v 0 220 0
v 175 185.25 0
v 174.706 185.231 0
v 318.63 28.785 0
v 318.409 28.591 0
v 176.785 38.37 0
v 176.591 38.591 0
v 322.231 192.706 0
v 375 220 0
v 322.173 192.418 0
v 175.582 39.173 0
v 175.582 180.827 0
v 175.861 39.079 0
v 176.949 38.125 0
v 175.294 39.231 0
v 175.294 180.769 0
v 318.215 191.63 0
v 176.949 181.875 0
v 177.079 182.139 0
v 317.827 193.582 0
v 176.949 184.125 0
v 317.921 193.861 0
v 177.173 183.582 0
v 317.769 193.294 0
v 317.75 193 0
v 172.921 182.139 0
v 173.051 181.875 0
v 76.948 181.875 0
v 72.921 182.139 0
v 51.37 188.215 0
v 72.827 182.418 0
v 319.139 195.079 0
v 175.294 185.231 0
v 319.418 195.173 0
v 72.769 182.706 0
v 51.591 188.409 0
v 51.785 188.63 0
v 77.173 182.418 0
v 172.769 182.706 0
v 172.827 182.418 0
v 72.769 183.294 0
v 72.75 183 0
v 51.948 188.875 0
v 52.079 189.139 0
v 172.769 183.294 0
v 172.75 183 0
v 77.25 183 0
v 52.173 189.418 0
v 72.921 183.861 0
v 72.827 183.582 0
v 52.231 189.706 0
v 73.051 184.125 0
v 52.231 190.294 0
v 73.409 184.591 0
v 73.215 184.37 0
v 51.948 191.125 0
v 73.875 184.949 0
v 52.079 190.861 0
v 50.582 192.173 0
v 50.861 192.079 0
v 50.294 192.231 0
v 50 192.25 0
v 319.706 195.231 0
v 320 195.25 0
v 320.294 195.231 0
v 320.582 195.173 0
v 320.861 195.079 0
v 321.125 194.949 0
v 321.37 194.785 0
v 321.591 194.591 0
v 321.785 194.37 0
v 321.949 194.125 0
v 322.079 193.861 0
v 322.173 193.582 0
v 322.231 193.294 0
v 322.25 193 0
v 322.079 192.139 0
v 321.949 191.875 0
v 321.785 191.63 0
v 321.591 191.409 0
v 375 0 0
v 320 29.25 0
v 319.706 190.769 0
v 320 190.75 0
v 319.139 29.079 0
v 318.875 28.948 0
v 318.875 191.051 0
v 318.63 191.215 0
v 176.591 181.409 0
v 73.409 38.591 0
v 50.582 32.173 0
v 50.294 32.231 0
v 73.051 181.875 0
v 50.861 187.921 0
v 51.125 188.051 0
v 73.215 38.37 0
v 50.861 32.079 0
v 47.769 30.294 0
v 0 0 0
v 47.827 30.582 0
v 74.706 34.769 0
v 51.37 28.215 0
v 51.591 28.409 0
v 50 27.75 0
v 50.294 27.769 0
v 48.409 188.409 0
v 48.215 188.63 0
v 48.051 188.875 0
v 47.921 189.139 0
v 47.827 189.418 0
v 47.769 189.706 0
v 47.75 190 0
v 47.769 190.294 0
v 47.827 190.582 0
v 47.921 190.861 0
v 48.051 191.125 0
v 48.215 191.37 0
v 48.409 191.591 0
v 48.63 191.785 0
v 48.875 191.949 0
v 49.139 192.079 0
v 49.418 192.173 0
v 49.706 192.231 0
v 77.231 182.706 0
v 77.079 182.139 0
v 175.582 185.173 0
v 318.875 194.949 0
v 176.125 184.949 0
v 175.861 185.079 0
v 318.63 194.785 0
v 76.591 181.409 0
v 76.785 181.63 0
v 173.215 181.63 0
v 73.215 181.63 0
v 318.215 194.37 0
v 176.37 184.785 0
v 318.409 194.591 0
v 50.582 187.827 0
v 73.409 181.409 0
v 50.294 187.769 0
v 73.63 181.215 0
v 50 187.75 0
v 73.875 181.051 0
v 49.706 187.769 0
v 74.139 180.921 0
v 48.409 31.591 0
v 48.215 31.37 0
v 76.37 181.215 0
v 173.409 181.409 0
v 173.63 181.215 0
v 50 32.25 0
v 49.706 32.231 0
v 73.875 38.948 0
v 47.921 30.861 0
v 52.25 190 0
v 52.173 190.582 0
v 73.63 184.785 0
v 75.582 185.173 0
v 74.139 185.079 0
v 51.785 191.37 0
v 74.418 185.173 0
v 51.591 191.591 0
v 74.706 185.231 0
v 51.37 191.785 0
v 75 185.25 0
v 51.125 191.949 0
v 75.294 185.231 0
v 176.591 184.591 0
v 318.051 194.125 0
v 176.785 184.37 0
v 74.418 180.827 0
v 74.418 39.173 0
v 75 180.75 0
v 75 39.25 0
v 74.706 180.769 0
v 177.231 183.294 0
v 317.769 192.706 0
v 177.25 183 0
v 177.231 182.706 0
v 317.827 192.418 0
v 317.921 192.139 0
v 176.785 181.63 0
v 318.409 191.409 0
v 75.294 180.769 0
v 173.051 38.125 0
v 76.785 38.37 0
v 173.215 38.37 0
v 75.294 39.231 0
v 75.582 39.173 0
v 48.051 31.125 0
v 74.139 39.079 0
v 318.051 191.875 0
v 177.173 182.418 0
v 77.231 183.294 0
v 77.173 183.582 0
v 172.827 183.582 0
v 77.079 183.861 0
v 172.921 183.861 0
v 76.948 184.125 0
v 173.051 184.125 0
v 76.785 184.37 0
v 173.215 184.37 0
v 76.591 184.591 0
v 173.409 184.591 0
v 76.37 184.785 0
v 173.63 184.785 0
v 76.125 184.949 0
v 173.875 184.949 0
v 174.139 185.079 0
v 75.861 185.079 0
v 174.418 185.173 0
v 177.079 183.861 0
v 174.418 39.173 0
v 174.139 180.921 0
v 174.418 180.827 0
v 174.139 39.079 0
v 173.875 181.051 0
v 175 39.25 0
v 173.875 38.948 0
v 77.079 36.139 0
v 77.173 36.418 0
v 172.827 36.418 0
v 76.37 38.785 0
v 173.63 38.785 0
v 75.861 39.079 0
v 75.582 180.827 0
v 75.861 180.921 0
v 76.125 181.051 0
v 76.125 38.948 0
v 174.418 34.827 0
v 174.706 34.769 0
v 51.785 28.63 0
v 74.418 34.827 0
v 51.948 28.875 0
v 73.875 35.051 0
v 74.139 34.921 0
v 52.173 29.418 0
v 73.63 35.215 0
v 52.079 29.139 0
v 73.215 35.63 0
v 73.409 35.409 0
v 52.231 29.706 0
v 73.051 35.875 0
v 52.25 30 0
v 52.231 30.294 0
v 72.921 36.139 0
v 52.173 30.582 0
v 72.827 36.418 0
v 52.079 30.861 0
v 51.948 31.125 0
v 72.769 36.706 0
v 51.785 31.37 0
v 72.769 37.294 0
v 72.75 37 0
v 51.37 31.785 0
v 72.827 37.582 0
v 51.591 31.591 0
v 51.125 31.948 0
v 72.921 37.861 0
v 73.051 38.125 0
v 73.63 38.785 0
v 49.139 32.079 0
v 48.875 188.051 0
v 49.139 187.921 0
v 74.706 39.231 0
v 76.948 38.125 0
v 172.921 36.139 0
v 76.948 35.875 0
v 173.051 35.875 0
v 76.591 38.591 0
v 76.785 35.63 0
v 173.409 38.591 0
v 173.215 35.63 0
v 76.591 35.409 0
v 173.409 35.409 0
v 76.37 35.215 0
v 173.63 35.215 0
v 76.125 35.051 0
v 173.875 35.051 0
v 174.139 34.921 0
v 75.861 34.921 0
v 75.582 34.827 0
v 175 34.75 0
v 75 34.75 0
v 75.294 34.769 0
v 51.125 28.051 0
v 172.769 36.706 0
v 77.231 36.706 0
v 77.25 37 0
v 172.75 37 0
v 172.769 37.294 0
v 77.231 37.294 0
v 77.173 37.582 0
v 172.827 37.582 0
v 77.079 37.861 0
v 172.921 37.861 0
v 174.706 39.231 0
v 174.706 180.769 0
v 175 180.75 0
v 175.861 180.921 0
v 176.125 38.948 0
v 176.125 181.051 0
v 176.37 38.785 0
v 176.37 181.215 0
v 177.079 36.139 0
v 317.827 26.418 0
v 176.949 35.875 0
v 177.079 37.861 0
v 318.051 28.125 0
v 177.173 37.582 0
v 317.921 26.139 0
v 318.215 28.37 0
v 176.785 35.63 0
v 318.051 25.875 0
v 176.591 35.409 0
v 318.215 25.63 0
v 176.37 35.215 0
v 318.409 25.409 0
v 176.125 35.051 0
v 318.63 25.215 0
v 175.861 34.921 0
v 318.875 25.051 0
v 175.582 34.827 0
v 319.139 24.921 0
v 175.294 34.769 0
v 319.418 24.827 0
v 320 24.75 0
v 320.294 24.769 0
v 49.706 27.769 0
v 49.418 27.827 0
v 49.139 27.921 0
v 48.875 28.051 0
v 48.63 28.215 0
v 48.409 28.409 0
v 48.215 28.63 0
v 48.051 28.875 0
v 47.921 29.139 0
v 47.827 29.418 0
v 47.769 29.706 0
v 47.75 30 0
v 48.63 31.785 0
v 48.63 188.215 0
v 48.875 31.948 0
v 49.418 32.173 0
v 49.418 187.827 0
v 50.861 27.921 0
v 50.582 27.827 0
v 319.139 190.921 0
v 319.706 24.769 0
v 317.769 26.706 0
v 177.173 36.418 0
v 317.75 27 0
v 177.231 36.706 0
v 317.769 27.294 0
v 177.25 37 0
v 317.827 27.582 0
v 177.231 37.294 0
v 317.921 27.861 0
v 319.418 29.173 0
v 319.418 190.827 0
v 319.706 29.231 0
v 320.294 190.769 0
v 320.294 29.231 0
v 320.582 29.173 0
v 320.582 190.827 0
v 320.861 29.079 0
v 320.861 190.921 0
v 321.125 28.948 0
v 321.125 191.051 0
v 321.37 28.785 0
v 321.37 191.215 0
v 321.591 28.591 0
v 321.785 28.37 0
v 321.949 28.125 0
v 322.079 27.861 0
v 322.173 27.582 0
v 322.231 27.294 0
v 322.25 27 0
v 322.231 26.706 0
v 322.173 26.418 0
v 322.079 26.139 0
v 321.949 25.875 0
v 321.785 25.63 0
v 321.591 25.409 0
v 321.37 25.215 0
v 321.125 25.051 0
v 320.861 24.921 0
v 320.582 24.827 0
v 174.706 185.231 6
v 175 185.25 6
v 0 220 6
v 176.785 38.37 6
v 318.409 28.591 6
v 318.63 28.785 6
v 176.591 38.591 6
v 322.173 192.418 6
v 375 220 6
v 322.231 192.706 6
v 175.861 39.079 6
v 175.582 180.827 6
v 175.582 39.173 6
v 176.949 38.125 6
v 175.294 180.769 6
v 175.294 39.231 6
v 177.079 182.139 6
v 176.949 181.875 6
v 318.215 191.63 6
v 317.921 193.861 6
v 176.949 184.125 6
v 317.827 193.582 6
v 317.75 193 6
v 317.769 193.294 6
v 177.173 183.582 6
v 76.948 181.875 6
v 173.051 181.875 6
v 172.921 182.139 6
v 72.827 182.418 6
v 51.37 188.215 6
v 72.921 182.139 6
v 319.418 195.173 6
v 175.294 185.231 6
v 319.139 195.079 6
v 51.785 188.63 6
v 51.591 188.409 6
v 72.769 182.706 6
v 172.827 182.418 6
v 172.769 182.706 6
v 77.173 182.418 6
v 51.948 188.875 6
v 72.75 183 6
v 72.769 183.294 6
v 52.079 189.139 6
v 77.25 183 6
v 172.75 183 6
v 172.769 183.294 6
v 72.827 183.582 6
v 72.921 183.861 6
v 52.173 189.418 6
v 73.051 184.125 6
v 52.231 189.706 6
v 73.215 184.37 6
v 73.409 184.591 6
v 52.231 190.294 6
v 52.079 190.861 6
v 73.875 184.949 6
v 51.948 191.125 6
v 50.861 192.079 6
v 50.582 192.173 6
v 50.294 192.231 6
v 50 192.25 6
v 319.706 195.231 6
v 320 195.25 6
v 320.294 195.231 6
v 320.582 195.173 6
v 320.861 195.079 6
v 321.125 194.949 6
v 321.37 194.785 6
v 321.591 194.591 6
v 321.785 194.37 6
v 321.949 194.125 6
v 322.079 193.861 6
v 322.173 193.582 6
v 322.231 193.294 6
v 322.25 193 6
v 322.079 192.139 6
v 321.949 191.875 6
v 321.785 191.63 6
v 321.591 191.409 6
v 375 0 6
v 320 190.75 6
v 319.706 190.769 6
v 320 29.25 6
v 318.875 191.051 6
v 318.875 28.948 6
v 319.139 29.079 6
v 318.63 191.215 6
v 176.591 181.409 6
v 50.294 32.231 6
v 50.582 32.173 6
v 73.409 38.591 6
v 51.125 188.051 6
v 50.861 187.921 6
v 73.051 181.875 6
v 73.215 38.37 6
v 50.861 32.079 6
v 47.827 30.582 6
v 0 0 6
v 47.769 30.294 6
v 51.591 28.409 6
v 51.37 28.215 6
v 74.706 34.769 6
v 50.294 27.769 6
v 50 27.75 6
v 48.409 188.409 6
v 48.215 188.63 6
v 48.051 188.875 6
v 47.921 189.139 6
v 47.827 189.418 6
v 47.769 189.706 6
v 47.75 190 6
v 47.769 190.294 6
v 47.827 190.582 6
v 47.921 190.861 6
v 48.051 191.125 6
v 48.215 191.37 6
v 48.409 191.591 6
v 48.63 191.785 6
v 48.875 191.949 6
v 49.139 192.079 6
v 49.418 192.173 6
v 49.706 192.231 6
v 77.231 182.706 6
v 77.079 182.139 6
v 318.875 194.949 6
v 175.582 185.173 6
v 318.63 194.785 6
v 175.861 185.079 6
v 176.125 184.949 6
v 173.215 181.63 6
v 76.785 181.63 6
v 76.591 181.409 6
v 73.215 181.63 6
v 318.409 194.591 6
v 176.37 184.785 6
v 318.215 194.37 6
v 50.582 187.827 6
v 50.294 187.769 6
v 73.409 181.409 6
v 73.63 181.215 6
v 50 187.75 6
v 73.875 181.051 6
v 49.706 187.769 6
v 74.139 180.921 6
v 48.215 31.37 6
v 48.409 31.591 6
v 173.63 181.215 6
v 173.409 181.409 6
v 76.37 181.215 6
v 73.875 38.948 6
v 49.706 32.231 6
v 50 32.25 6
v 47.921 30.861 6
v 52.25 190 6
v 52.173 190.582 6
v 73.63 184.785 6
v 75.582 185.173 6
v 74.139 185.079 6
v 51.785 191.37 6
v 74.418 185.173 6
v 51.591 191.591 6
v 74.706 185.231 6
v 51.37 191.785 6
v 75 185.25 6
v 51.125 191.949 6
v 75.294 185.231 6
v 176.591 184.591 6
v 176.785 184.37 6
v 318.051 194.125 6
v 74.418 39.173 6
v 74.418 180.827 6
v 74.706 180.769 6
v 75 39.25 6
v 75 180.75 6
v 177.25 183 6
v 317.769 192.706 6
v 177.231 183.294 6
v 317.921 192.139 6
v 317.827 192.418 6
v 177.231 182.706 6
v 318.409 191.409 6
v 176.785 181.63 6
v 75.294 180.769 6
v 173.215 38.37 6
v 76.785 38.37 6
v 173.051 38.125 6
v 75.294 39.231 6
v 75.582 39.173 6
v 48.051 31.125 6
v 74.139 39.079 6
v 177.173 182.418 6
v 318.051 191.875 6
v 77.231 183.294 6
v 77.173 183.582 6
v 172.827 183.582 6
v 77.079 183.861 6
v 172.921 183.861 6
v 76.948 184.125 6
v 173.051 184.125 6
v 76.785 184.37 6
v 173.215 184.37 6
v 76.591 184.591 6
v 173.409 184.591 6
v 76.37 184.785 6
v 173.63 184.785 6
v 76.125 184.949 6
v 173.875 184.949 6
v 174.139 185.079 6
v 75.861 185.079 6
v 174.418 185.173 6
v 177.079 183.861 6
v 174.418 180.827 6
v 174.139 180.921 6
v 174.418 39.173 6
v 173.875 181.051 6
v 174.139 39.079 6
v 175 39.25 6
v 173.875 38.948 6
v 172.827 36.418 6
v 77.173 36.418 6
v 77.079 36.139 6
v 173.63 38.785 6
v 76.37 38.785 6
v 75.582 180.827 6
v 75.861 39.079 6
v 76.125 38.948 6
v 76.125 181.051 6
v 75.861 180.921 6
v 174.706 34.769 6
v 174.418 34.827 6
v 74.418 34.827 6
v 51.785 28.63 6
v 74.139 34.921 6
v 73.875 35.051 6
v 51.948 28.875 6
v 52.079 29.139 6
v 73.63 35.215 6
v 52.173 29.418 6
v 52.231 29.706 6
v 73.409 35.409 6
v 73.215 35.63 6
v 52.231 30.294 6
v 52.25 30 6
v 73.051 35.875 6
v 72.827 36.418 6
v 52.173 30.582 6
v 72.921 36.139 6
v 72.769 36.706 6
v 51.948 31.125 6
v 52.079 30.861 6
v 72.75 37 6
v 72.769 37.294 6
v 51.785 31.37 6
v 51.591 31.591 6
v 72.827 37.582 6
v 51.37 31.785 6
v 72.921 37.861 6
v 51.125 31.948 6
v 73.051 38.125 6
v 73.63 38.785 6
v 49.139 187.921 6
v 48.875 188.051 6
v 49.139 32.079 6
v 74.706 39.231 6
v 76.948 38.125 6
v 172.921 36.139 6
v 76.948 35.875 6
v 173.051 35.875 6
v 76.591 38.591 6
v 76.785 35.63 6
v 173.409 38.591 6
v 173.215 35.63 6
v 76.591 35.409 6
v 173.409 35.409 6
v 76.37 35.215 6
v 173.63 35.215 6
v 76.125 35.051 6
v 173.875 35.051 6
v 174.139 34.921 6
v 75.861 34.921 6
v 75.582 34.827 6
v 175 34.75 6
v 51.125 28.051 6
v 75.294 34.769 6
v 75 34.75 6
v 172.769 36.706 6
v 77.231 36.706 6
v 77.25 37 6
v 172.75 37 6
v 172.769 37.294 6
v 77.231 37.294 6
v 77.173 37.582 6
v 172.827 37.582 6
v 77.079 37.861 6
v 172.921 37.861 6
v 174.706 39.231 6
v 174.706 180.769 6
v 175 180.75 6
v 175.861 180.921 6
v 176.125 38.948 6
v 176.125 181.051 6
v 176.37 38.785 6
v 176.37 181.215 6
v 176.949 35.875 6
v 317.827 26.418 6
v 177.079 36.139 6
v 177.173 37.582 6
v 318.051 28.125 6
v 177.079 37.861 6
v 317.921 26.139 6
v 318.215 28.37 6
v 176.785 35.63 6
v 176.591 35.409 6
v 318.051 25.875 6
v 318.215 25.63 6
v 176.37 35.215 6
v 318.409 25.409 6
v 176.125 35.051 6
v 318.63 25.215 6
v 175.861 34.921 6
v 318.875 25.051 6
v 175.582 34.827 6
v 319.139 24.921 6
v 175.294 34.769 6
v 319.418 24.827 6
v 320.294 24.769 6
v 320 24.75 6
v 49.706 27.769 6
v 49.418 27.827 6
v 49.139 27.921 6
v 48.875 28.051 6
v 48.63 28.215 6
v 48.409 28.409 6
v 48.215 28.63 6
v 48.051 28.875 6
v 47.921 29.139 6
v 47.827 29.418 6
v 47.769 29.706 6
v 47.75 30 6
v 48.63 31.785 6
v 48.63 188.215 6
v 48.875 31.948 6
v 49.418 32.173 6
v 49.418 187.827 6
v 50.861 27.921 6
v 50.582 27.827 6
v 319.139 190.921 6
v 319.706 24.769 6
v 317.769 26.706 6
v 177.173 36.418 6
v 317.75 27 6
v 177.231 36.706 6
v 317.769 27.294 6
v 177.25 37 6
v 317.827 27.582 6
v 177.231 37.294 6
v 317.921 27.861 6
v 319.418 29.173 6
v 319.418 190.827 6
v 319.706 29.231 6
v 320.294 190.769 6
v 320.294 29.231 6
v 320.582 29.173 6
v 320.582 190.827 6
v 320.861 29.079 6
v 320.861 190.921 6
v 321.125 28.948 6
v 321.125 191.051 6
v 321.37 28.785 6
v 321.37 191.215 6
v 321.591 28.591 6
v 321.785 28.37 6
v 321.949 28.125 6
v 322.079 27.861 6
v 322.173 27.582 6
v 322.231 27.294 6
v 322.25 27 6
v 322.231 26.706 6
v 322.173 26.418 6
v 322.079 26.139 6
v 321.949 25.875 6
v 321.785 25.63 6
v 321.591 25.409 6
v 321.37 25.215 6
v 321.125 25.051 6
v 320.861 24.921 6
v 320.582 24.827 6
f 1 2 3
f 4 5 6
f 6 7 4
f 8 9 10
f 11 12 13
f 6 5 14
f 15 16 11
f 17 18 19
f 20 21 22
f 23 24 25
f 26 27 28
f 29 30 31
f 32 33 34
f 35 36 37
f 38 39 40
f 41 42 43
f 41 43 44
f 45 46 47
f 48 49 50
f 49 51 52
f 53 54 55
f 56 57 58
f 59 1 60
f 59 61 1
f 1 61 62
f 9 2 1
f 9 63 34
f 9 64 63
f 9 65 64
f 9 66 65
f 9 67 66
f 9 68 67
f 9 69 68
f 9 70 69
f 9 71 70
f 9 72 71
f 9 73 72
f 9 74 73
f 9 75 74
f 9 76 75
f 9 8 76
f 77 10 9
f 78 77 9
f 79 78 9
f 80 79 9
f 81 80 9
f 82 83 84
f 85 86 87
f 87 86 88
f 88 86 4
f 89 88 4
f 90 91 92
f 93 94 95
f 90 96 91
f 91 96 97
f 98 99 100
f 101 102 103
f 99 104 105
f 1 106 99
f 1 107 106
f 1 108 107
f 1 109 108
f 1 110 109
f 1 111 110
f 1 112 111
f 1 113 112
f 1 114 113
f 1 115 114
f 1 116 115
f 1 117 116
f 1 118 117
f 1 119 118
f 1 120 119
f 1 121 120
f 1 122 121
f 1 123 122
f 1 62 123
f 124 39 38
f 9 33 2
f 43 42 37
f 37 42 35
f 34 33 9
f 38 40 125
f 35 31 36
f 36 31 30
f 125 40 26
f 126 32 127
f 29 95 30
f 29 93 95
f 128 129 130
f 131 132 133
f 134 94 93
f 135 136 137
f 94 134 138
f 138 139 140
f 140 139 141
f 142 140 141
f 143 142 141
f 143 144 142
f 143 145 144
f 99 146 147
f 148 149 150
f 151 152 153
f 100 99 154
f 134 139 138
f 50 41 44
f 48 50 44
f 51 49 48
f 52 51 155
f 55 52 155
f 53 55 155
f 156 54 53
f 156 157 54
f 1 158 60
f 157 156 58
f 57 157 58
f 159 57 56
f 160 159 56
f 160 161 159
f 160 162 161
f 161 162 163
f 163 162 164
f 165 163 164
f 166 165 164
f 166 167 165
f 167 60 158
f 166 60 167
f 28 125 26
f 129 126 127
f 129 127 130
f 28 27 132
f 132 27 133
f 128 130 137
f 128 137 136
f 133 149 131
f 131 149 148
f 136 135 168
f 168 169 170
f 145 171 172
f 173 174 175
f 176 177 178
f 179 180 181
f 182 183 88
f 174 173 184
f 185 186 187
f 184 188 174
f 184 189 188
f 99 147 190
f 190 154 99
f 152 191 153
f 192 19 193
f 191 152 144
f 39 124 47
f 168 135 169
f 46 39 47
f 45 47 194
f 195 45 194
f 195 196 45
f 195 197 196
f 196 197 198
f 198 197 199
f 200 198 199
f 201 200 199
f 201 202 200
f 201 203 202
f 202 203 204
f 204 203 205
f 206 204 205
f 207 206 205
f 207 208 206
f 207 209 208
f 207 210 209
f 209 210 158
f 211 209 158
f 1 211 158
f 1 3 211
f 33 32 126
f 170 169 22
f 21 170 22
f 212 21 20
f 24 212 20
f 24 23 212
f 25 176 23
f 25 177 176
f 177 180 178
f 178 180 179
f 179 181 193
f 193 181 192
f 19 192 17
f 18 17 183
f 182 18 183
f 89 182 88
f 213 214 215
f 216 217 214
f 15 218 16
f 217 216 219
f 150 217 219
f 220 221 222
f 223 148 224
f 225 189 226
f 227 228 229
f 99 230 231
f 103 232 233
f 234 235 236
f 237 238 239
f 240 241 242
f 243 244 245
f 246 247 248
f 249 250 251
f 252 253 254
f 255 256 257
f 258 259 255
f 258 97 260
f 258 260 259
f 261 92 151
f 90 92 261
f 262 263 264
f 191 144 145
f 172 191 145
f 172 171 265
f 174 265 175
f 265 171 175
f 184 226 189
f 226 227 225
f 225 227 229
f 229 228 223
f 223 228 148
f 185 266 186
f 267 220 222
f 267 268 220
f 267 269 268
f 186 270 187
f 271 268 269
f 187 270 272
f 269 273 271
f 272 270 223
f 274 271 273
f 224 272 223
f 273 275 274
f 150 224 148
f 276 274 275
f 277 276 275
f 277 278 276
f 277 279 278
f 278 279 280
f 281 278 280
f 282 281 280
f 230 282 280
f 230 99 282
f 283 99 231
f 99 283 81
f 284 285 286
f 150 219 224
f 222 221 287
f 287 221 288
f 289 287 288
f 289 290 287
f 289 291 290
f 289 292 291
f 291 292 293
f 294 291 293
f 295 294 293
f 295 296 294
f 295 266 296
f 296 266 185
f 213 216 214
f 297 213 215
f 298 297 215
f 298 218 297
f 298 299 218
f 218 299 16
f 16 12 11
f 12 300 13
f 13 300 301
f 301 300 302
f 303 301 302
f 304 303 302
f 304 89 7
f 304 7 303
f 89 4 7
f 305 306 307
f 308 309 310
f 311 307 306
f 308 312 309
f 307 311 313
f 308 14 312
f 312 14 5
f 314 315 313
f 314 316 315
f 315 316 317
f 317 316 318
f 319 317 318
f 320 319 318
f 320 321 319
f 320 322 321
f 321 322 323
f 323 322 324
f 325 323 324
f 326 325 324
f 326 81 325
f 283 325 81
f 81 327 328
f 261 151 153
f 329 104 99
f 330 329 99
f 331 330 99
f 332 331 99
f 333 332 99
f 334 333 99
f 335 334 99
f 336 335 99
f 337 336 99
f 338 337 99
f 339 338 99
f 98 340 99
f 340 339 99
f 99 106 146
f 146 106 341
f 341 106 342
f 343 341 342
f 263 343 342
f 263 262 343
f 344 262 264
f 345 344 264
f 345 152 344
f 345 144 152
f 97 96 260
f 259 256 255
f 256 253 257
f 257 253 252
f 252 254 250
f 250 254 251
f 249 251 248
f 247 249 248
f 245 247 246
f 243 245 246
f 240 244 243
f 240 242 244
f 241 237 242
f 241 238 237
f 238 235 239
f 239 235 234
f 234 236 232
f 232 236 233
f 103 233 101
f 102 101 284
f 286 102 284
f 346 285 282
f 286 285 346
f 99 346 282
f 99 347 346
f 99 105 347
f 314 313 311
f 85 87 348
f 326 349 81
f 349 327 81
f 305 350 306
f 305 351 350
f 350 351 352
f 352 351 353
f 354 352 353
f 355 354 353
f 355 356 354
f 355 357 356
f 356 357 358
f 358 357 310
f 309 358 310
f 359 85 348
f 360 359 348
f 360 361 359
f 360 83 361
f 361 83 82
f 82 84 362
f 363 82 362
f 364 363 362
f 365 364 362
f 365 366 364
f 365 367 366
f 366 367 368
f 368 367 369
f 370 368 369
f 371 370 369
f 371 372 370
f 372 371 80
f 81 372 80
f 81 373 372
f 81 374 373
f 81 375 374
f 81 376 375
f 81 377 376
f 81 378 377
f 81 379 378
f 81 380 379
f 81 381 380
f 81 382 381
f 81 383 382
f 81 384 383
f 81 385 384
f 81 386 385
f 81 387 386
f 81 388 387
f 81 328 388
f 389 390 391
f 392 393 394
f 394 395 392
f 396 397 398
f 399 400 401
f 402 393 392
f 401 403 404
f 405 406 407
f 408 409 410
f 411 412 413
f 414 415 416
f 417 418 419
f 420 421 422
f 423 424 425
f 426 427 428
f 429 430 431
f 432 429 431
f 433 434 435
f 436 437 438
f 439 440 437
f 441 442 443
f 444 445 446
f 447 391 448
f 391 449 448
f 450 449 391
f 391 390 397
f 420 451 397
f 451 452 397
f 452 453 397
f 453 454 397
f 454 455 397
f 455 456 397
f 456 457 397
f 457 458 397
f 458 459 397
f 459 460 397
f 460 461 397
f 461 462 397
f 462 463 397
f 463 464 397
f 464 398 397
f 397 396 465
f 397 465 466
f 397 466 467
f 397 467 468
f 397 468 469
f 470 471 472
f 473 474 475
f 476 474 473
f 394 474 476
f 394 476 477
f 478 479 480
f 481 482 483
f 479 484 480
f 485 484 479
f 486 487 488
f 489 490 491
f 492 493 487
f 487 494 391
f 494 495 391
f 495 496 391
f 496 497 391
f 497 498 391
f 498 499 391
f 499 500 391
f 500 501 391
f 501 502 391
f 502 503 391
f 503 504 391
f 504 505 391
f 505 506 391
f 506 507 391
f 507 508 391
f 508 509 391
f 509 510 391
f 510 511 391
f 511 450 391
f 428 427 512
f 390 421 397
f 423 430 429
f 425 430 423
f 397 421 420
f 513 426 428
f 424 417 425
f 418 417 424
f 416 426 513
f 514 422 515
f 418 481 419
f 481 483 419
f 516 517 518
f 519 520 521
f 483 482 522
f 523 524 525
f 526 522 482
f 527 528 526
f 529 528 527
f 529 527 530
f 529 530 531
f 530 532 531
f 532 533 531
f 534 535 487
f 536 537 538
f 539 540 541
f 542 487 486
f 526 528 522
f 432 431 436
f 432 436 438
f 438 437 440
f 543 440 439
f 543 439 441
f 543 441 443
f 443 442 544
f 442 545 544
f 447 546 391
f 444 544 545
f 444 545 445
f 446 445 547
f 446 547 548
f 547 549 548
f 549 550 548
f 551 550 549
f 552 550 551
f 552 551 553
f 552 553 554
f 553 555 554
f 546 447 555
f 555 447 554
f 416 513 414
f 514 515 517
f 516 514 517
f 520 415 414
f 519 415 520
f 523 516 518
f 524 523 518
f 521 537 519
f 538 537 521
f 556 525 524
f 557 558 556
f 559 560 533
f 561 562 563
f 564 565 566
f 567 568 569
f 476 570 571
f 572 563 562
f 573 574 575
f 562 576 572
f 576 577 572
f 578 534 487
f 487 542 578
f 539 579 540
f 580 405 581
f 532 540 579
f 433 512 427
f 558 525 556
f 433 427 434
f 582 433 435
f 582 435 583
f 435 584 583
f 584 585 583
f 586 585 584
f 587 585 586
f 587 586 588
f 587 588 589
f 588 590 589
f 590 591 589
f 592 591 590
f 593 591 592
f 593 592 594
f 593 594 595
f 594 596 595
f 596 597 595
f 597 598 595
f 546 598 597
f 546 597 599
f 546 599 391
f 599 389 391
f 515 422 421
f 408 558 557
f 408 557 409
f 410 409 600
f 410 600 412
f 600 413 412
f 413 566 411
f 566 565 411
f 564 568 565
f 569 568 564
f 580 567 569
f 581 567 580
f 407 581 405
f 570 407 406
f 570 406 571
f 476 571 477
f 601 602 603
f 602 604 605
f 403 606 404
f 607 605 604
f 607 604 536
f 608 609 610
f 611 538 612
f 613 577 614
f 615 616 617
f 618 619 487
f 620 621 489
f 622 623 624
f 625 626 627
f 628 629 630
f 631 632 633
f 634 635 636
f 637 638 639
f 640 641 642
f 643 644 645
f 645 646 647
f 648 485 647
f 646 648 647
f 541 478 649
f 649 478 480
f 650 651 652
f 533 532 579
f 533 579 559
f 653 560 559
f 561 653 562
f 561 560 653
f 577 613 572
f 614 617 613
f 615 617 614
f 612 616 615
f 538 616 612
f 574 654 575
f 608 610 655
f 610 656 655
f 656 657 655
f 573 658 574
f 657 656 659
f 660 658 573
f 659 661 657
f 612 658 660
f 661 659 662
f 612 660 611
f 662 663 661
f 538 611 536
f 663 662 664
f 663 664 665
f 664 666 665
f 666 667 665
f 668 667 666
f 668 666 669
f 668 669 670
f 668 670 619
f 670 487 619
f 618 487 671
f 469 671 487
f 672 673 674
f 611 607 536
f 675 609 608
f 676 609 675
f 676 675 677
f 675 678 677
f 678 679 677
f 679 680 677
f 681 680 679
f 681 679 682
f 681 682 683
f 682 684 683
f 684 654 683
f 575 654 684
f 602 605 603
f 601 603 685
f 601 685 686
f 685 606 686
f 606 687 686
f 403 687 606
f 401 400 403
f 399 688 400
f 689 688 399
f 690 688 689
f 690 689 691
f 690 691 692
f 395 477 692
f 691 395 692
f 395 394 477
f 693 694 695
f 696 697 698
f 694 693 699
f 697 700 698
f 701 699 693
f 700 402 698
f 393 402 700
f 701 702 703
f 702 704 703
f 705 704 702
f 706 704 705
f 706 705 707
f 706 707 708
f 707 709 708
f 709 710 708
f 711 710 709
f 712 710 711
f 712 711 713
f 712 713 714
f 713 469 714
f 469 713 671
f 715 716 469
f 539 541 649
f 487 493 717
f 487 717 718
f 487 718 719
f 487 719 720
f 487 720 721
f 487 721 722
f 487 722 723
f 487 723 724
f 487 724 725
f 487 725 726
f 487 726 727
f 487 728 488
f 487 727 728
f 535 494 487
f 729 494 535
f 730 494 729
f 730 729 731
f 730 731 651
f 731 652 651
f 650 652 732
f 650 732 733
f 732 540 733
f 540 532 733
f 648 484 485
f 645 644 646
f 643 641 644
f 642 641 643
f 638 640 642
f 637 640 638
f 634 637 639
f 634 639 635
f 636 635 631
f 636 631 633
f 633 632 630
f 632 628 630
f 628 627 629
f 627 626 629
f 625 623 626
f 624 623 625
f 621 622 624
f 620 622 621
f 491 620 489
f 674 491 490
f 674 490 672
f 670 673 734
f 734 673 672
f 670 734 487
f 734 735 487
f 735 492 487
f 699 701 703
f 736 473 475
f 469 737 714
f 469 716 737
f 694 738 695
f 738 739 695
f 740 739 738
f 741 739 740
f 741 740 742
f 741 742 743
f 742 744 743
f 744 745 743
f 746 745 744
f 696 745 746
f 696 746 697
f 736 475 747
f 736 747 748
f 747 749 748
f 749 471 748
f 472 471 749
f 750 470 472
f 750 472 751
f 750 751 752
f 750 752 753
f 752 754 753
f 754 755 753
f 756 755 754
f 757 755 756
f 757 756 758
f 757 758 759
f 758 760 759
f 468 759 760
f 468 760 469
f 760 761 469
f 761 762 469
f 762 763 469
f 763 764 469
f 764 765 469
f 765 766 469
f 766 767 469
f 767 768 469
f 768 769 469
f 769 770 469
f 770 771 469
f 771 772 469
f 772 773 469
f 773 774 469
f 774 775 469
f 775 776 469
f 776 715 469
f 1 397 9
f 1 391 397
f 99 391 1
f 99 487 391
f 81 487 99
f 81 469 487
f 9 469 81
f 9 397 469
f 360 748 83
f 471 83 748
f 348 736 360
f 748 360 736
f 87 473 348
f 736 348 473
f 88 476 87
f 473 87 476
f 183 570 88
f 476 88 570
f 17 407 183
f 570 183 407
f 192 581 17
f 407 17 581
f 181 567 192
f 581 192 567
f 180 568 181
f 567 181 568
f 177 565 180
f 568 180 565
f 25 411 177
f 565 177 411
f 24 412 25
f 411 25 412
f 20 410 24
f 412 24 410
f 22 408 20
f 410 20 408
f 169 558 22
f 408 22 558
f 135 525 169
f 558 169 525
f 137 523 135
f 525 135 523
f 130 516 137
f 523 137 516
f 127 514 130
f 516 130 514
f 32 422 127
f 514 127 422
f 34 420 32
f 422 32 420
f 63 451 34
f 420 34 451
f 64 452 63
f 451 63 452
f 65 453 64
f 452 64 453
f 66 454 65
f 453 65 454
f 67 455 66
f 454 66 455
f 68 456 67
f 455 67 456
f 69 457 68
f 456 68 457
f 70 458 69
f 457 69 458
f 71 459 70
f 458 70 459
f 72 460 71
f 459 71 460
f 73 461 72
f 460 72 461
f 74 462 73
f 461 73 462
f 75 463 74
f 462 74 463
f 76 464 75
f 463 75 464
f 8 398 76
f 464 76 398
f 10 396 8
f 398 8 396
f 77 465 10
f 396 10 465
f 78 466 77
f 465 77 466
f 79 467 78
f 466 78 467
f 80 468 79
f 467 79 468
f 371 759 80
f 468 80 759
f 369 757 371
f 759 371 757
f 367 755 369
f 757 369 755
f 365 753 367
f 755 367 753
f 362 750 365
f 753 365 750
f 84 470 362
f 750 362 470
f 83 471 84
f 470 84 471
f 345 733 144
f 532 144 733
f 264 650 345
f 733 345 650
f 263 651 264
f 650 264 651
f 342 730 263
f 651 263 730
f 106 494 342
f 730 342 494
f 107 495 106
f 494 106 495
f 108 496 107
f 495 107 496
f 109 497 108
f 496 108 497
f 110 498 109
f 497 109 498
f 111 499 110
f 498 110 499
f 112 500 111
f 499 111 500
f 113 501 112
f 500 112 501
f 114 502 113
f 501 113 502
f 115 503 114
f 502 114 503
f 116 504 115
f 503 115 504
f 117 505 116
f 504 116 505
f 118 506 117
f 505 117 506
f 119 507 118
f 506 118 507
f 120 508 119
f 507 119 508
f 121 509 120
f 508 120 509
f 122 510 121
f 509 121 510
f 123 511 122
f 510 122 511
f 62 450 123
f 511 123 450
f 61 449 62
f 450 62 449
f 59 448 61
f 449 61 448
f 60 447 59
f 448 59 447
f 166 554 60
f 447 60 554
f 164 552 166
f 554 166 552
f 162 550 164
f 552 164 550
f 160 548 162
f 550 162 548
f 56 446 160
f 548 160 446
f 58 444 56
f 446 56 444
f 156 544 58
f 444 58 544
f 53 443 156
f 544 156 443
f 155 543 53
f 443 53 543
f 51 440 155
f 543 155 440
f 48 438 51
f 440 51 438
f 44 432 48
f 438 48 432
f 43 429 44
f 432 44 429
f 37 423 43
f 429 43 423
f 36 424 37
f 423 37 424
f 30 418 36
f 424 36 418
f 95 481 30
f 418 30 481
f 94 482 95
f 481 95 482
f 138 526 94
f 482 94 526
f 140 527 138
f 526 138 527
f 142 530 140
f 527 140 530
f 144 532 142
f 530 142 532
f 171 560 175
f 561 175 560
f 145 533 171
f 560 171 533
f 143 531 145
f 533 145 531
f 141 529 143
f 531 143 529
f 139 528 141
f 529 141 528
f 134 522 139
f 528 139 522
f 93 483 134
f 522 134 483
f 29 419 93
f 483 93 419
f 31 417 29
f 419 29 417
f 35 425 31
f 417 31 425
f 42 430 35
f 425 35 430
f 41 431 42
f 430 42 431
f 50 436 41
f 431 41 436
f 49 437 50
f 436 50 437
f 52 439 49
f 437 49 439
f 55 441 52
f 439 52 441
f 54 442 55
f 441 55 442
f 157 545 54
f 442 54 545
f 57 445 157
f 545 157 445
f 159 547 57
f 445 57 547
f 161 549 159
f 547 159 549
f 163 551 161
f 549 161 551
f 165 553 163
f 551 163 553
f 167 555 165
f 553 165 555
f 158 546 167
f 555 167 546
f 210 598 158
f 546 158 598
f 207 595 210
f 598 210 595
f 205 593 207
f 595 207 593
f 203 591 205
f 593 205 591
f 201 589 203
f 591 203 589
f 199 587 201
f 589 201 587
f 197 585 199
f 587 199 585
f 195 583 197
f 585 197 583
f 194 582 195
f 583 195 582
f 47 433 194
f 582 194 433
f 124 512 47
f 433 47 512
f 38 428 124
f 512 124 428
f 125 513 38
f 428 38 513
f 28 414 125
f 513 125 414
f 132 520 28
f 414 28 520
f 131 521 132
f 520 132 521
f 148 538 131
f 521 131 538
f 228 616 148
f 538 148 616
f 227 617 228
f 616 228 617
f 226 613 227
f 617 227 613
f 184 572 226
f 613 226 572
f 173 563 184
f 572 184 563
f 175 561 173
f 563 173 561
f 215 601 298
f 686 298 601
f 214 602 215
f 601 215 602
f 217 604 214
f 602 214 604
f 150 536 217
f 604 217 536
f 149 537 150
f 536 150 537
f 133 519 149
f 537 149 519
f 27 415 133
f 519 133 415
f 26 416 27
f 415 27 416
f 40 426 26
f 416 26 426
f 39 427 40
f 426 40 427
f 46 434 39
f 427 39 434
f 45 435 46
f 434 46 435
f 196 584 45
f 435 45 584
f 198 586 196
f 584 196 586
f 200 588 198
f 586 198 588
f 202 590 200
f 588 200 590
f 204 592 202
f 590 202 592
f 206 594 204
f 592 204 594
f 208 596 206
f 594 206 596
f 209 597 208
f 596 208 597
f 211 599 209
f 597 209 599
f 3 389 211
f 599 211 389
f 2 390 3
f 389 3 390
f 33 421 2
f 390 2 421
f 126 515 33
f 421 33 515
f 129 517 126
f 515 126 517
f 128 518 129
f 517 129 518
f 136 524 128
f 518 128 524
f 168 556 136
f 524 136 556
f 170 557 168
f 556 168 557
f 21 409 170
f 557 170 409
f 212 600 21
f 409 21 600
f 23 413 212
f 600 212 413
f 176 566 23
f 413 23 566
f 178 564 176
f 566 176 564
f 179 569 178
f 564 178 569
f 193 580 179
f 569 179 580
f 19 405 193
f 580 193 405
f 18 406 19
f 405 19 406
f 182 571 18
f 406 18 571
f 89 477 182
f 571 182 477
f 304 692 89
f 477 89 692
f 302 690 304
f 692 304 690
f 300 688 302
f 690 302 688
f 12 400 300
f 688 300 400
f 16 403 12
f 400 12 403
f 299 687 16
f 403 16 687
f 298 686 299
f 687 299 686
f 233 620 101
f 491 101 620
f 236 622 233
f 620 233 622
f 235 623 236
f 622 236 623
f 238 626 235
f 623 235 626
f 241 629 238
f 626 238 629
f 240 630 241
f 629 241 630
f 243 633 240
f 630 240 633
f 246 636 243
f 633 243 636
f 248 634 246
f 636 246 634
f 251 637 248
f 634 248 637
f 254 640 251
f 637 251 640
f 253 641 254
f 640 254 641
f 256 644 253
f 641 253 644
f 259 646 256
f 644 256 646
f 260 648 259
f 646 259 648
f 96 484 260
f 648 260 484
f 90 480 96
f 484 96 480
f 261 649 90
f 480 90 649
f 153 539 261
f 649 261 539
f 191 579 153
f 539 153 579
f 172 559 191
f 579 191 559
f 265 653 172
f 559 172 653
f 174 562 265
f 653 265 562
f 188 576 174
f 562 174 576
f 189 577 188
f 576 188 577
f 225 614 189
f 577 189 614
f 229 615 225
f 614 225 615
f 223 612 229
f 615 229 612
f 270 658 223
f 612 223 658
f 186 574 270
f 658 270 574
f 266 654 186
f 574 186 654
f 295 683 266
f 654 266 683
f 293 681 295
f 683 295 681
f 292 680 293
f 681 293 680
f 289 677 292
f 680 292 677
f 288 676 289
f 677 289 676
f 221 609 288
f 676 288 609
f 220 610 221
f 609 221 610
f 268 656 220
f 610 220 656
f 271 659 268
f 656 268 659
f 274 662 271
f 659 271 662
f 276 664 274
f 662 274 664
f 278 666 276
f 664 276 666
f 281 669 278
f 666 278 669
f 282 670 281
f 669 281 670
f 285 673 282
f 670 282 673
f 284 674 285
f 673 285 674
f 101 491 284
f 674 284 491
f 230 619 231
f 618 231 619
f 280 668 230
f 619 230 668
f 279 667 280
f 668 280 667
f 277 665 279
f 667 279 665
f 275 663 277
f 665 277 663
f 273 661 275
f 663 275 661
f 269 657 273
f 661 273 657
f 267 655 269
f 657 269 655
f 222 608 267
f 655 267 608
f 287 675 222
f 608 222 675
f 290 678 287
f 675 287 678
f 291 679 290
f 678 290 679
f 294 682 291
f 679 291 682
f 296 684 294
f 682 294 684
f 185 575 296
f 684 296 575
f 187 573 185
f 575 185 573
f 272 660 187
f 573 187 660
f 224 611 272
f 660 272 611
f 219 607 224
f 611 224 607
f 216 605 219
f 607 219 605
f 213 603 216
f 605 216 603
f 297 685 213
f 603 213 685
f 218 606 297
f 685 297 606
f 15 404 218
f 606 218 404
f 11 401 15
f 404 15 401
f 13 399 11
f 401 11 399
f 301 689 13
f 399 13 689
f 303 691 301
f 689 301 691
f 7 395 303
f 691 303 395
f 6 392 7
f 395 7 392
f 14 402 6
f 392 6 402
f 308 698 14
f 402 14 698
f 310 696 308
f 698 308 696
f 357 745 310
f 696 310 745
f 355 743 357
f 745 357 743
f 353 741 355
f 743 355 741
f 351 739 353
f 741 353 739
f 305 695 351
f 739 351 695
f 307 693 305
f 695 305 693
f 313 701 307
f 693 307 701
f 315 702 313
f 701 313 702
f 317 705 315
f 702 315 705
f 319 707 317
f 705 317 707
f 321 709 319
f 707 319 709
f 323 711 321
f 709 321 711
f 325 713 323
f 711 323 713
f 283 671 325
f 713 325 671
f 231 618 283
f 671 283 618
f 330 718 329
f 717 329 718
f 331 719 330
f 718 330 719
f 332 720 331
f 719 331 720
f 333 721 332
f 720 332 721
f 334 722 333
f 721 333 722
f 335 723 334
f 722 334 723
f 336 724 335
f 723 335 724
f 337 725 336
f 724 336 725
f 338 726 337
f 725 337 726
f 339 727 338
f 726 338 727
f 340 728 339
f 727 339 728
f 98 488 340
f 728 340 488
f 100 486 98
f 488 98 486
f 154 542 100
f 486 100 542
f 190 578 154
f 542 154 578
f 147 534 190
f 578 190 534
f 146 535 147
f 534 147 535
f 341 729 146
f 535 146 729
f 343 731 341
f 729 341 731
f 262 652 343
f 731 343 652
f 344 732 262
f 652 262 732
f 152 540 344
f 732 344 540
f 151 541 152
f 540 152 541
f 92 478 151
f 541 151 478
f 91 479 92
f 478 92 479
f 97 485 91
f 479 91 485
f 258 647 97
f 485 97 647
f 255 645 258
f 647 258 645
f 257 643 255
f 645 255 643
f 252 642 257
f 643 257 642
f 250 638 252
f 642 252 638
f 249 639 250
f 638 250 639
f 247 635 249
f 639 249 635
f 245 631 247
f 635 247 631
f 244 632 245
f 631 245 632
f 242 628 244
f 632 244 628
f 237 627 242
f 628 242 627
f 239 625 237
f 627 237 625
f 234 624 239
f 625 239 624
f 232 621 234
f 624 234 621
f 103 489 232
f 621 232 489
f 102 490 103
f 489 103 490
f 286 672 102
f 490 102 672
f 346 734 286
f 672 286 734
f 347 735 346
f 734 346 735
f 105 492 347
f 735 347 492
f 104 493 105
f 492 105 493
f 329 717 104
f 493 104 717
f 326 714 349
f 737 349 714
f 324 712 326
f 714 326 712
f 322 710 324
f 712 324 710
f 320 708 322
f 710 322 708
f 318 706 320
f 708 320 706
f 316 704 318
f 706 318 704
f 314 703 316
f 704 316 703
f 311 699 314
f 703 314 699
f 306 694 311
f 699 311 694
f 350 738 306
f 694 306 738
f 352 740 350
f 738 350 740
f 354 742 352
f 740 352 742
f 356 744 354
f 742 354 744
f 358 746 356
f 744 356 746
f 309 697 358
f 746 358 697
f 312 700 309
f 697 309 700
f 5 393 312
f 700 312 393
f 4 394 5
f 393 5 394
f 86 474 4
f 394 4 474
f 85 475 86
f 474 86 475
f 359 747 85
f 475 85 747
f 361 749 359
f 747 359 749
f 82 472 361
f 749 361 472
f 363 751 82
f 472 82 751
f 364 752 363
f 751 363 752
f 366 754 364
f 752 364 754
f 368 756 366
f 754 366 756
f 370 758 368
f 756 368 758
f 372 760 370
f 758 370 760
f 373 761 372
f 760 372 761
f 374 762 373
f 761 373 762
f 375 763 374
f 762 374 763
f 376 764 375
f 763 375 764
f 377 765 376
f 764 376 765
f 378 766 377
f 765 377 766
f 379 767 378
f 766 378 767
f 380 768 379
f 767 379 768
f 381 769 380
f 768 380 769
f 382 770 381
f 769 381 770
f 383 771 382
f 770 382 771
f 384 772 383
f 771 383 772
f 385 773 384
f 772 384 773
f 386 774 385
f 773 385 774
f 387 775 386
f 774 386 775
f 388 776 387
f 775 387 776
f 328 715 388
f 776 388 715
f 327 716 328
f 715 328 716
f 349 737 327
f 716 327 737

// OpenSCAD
linear_extrude(6) difference(){ polygon([[0, 0], [375, 0], [375, 220], [0, 220]]);translate([75,37]) circle(r=2.25,$fn=48);translate([75,183]) circle(r=2.25,$fn=48);translate([175,37]) circle(r=2.25,$fn=48);translate([175,183]) circle(r=2.25,$fn=48);translate([320,27]) circle(r=2.25,$fn=48);translate([320,193]) circle(r=2.25,$fn=48);translate([50,30]) circle(r=2.25,$fn=48);translate([50,190]) circle(r=2.25,$fn=48);}
